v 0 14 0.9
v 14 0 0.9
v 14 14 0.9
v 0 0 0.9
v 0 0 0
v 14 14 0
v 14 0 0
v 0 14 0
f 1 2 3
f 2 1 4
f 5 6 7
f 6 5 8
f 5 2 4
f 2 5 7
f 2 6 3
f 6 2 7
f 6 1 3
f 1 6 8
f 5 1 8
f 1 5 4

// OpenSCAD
/* Warning, this is a very basic generator with a lot of approximation 
input data : [VQFN, 2NW, 14x14x0.9mm, 180, , A, C04-00548A]
generated by com.zoubworld.electronics.cad.model3d.Basic
Date : Sun Feb 15 10:50:48 CET 2026
*/

//body
color("black")
translate([0,0,0])
cube([14.0,14.0,0.9], center=false);
